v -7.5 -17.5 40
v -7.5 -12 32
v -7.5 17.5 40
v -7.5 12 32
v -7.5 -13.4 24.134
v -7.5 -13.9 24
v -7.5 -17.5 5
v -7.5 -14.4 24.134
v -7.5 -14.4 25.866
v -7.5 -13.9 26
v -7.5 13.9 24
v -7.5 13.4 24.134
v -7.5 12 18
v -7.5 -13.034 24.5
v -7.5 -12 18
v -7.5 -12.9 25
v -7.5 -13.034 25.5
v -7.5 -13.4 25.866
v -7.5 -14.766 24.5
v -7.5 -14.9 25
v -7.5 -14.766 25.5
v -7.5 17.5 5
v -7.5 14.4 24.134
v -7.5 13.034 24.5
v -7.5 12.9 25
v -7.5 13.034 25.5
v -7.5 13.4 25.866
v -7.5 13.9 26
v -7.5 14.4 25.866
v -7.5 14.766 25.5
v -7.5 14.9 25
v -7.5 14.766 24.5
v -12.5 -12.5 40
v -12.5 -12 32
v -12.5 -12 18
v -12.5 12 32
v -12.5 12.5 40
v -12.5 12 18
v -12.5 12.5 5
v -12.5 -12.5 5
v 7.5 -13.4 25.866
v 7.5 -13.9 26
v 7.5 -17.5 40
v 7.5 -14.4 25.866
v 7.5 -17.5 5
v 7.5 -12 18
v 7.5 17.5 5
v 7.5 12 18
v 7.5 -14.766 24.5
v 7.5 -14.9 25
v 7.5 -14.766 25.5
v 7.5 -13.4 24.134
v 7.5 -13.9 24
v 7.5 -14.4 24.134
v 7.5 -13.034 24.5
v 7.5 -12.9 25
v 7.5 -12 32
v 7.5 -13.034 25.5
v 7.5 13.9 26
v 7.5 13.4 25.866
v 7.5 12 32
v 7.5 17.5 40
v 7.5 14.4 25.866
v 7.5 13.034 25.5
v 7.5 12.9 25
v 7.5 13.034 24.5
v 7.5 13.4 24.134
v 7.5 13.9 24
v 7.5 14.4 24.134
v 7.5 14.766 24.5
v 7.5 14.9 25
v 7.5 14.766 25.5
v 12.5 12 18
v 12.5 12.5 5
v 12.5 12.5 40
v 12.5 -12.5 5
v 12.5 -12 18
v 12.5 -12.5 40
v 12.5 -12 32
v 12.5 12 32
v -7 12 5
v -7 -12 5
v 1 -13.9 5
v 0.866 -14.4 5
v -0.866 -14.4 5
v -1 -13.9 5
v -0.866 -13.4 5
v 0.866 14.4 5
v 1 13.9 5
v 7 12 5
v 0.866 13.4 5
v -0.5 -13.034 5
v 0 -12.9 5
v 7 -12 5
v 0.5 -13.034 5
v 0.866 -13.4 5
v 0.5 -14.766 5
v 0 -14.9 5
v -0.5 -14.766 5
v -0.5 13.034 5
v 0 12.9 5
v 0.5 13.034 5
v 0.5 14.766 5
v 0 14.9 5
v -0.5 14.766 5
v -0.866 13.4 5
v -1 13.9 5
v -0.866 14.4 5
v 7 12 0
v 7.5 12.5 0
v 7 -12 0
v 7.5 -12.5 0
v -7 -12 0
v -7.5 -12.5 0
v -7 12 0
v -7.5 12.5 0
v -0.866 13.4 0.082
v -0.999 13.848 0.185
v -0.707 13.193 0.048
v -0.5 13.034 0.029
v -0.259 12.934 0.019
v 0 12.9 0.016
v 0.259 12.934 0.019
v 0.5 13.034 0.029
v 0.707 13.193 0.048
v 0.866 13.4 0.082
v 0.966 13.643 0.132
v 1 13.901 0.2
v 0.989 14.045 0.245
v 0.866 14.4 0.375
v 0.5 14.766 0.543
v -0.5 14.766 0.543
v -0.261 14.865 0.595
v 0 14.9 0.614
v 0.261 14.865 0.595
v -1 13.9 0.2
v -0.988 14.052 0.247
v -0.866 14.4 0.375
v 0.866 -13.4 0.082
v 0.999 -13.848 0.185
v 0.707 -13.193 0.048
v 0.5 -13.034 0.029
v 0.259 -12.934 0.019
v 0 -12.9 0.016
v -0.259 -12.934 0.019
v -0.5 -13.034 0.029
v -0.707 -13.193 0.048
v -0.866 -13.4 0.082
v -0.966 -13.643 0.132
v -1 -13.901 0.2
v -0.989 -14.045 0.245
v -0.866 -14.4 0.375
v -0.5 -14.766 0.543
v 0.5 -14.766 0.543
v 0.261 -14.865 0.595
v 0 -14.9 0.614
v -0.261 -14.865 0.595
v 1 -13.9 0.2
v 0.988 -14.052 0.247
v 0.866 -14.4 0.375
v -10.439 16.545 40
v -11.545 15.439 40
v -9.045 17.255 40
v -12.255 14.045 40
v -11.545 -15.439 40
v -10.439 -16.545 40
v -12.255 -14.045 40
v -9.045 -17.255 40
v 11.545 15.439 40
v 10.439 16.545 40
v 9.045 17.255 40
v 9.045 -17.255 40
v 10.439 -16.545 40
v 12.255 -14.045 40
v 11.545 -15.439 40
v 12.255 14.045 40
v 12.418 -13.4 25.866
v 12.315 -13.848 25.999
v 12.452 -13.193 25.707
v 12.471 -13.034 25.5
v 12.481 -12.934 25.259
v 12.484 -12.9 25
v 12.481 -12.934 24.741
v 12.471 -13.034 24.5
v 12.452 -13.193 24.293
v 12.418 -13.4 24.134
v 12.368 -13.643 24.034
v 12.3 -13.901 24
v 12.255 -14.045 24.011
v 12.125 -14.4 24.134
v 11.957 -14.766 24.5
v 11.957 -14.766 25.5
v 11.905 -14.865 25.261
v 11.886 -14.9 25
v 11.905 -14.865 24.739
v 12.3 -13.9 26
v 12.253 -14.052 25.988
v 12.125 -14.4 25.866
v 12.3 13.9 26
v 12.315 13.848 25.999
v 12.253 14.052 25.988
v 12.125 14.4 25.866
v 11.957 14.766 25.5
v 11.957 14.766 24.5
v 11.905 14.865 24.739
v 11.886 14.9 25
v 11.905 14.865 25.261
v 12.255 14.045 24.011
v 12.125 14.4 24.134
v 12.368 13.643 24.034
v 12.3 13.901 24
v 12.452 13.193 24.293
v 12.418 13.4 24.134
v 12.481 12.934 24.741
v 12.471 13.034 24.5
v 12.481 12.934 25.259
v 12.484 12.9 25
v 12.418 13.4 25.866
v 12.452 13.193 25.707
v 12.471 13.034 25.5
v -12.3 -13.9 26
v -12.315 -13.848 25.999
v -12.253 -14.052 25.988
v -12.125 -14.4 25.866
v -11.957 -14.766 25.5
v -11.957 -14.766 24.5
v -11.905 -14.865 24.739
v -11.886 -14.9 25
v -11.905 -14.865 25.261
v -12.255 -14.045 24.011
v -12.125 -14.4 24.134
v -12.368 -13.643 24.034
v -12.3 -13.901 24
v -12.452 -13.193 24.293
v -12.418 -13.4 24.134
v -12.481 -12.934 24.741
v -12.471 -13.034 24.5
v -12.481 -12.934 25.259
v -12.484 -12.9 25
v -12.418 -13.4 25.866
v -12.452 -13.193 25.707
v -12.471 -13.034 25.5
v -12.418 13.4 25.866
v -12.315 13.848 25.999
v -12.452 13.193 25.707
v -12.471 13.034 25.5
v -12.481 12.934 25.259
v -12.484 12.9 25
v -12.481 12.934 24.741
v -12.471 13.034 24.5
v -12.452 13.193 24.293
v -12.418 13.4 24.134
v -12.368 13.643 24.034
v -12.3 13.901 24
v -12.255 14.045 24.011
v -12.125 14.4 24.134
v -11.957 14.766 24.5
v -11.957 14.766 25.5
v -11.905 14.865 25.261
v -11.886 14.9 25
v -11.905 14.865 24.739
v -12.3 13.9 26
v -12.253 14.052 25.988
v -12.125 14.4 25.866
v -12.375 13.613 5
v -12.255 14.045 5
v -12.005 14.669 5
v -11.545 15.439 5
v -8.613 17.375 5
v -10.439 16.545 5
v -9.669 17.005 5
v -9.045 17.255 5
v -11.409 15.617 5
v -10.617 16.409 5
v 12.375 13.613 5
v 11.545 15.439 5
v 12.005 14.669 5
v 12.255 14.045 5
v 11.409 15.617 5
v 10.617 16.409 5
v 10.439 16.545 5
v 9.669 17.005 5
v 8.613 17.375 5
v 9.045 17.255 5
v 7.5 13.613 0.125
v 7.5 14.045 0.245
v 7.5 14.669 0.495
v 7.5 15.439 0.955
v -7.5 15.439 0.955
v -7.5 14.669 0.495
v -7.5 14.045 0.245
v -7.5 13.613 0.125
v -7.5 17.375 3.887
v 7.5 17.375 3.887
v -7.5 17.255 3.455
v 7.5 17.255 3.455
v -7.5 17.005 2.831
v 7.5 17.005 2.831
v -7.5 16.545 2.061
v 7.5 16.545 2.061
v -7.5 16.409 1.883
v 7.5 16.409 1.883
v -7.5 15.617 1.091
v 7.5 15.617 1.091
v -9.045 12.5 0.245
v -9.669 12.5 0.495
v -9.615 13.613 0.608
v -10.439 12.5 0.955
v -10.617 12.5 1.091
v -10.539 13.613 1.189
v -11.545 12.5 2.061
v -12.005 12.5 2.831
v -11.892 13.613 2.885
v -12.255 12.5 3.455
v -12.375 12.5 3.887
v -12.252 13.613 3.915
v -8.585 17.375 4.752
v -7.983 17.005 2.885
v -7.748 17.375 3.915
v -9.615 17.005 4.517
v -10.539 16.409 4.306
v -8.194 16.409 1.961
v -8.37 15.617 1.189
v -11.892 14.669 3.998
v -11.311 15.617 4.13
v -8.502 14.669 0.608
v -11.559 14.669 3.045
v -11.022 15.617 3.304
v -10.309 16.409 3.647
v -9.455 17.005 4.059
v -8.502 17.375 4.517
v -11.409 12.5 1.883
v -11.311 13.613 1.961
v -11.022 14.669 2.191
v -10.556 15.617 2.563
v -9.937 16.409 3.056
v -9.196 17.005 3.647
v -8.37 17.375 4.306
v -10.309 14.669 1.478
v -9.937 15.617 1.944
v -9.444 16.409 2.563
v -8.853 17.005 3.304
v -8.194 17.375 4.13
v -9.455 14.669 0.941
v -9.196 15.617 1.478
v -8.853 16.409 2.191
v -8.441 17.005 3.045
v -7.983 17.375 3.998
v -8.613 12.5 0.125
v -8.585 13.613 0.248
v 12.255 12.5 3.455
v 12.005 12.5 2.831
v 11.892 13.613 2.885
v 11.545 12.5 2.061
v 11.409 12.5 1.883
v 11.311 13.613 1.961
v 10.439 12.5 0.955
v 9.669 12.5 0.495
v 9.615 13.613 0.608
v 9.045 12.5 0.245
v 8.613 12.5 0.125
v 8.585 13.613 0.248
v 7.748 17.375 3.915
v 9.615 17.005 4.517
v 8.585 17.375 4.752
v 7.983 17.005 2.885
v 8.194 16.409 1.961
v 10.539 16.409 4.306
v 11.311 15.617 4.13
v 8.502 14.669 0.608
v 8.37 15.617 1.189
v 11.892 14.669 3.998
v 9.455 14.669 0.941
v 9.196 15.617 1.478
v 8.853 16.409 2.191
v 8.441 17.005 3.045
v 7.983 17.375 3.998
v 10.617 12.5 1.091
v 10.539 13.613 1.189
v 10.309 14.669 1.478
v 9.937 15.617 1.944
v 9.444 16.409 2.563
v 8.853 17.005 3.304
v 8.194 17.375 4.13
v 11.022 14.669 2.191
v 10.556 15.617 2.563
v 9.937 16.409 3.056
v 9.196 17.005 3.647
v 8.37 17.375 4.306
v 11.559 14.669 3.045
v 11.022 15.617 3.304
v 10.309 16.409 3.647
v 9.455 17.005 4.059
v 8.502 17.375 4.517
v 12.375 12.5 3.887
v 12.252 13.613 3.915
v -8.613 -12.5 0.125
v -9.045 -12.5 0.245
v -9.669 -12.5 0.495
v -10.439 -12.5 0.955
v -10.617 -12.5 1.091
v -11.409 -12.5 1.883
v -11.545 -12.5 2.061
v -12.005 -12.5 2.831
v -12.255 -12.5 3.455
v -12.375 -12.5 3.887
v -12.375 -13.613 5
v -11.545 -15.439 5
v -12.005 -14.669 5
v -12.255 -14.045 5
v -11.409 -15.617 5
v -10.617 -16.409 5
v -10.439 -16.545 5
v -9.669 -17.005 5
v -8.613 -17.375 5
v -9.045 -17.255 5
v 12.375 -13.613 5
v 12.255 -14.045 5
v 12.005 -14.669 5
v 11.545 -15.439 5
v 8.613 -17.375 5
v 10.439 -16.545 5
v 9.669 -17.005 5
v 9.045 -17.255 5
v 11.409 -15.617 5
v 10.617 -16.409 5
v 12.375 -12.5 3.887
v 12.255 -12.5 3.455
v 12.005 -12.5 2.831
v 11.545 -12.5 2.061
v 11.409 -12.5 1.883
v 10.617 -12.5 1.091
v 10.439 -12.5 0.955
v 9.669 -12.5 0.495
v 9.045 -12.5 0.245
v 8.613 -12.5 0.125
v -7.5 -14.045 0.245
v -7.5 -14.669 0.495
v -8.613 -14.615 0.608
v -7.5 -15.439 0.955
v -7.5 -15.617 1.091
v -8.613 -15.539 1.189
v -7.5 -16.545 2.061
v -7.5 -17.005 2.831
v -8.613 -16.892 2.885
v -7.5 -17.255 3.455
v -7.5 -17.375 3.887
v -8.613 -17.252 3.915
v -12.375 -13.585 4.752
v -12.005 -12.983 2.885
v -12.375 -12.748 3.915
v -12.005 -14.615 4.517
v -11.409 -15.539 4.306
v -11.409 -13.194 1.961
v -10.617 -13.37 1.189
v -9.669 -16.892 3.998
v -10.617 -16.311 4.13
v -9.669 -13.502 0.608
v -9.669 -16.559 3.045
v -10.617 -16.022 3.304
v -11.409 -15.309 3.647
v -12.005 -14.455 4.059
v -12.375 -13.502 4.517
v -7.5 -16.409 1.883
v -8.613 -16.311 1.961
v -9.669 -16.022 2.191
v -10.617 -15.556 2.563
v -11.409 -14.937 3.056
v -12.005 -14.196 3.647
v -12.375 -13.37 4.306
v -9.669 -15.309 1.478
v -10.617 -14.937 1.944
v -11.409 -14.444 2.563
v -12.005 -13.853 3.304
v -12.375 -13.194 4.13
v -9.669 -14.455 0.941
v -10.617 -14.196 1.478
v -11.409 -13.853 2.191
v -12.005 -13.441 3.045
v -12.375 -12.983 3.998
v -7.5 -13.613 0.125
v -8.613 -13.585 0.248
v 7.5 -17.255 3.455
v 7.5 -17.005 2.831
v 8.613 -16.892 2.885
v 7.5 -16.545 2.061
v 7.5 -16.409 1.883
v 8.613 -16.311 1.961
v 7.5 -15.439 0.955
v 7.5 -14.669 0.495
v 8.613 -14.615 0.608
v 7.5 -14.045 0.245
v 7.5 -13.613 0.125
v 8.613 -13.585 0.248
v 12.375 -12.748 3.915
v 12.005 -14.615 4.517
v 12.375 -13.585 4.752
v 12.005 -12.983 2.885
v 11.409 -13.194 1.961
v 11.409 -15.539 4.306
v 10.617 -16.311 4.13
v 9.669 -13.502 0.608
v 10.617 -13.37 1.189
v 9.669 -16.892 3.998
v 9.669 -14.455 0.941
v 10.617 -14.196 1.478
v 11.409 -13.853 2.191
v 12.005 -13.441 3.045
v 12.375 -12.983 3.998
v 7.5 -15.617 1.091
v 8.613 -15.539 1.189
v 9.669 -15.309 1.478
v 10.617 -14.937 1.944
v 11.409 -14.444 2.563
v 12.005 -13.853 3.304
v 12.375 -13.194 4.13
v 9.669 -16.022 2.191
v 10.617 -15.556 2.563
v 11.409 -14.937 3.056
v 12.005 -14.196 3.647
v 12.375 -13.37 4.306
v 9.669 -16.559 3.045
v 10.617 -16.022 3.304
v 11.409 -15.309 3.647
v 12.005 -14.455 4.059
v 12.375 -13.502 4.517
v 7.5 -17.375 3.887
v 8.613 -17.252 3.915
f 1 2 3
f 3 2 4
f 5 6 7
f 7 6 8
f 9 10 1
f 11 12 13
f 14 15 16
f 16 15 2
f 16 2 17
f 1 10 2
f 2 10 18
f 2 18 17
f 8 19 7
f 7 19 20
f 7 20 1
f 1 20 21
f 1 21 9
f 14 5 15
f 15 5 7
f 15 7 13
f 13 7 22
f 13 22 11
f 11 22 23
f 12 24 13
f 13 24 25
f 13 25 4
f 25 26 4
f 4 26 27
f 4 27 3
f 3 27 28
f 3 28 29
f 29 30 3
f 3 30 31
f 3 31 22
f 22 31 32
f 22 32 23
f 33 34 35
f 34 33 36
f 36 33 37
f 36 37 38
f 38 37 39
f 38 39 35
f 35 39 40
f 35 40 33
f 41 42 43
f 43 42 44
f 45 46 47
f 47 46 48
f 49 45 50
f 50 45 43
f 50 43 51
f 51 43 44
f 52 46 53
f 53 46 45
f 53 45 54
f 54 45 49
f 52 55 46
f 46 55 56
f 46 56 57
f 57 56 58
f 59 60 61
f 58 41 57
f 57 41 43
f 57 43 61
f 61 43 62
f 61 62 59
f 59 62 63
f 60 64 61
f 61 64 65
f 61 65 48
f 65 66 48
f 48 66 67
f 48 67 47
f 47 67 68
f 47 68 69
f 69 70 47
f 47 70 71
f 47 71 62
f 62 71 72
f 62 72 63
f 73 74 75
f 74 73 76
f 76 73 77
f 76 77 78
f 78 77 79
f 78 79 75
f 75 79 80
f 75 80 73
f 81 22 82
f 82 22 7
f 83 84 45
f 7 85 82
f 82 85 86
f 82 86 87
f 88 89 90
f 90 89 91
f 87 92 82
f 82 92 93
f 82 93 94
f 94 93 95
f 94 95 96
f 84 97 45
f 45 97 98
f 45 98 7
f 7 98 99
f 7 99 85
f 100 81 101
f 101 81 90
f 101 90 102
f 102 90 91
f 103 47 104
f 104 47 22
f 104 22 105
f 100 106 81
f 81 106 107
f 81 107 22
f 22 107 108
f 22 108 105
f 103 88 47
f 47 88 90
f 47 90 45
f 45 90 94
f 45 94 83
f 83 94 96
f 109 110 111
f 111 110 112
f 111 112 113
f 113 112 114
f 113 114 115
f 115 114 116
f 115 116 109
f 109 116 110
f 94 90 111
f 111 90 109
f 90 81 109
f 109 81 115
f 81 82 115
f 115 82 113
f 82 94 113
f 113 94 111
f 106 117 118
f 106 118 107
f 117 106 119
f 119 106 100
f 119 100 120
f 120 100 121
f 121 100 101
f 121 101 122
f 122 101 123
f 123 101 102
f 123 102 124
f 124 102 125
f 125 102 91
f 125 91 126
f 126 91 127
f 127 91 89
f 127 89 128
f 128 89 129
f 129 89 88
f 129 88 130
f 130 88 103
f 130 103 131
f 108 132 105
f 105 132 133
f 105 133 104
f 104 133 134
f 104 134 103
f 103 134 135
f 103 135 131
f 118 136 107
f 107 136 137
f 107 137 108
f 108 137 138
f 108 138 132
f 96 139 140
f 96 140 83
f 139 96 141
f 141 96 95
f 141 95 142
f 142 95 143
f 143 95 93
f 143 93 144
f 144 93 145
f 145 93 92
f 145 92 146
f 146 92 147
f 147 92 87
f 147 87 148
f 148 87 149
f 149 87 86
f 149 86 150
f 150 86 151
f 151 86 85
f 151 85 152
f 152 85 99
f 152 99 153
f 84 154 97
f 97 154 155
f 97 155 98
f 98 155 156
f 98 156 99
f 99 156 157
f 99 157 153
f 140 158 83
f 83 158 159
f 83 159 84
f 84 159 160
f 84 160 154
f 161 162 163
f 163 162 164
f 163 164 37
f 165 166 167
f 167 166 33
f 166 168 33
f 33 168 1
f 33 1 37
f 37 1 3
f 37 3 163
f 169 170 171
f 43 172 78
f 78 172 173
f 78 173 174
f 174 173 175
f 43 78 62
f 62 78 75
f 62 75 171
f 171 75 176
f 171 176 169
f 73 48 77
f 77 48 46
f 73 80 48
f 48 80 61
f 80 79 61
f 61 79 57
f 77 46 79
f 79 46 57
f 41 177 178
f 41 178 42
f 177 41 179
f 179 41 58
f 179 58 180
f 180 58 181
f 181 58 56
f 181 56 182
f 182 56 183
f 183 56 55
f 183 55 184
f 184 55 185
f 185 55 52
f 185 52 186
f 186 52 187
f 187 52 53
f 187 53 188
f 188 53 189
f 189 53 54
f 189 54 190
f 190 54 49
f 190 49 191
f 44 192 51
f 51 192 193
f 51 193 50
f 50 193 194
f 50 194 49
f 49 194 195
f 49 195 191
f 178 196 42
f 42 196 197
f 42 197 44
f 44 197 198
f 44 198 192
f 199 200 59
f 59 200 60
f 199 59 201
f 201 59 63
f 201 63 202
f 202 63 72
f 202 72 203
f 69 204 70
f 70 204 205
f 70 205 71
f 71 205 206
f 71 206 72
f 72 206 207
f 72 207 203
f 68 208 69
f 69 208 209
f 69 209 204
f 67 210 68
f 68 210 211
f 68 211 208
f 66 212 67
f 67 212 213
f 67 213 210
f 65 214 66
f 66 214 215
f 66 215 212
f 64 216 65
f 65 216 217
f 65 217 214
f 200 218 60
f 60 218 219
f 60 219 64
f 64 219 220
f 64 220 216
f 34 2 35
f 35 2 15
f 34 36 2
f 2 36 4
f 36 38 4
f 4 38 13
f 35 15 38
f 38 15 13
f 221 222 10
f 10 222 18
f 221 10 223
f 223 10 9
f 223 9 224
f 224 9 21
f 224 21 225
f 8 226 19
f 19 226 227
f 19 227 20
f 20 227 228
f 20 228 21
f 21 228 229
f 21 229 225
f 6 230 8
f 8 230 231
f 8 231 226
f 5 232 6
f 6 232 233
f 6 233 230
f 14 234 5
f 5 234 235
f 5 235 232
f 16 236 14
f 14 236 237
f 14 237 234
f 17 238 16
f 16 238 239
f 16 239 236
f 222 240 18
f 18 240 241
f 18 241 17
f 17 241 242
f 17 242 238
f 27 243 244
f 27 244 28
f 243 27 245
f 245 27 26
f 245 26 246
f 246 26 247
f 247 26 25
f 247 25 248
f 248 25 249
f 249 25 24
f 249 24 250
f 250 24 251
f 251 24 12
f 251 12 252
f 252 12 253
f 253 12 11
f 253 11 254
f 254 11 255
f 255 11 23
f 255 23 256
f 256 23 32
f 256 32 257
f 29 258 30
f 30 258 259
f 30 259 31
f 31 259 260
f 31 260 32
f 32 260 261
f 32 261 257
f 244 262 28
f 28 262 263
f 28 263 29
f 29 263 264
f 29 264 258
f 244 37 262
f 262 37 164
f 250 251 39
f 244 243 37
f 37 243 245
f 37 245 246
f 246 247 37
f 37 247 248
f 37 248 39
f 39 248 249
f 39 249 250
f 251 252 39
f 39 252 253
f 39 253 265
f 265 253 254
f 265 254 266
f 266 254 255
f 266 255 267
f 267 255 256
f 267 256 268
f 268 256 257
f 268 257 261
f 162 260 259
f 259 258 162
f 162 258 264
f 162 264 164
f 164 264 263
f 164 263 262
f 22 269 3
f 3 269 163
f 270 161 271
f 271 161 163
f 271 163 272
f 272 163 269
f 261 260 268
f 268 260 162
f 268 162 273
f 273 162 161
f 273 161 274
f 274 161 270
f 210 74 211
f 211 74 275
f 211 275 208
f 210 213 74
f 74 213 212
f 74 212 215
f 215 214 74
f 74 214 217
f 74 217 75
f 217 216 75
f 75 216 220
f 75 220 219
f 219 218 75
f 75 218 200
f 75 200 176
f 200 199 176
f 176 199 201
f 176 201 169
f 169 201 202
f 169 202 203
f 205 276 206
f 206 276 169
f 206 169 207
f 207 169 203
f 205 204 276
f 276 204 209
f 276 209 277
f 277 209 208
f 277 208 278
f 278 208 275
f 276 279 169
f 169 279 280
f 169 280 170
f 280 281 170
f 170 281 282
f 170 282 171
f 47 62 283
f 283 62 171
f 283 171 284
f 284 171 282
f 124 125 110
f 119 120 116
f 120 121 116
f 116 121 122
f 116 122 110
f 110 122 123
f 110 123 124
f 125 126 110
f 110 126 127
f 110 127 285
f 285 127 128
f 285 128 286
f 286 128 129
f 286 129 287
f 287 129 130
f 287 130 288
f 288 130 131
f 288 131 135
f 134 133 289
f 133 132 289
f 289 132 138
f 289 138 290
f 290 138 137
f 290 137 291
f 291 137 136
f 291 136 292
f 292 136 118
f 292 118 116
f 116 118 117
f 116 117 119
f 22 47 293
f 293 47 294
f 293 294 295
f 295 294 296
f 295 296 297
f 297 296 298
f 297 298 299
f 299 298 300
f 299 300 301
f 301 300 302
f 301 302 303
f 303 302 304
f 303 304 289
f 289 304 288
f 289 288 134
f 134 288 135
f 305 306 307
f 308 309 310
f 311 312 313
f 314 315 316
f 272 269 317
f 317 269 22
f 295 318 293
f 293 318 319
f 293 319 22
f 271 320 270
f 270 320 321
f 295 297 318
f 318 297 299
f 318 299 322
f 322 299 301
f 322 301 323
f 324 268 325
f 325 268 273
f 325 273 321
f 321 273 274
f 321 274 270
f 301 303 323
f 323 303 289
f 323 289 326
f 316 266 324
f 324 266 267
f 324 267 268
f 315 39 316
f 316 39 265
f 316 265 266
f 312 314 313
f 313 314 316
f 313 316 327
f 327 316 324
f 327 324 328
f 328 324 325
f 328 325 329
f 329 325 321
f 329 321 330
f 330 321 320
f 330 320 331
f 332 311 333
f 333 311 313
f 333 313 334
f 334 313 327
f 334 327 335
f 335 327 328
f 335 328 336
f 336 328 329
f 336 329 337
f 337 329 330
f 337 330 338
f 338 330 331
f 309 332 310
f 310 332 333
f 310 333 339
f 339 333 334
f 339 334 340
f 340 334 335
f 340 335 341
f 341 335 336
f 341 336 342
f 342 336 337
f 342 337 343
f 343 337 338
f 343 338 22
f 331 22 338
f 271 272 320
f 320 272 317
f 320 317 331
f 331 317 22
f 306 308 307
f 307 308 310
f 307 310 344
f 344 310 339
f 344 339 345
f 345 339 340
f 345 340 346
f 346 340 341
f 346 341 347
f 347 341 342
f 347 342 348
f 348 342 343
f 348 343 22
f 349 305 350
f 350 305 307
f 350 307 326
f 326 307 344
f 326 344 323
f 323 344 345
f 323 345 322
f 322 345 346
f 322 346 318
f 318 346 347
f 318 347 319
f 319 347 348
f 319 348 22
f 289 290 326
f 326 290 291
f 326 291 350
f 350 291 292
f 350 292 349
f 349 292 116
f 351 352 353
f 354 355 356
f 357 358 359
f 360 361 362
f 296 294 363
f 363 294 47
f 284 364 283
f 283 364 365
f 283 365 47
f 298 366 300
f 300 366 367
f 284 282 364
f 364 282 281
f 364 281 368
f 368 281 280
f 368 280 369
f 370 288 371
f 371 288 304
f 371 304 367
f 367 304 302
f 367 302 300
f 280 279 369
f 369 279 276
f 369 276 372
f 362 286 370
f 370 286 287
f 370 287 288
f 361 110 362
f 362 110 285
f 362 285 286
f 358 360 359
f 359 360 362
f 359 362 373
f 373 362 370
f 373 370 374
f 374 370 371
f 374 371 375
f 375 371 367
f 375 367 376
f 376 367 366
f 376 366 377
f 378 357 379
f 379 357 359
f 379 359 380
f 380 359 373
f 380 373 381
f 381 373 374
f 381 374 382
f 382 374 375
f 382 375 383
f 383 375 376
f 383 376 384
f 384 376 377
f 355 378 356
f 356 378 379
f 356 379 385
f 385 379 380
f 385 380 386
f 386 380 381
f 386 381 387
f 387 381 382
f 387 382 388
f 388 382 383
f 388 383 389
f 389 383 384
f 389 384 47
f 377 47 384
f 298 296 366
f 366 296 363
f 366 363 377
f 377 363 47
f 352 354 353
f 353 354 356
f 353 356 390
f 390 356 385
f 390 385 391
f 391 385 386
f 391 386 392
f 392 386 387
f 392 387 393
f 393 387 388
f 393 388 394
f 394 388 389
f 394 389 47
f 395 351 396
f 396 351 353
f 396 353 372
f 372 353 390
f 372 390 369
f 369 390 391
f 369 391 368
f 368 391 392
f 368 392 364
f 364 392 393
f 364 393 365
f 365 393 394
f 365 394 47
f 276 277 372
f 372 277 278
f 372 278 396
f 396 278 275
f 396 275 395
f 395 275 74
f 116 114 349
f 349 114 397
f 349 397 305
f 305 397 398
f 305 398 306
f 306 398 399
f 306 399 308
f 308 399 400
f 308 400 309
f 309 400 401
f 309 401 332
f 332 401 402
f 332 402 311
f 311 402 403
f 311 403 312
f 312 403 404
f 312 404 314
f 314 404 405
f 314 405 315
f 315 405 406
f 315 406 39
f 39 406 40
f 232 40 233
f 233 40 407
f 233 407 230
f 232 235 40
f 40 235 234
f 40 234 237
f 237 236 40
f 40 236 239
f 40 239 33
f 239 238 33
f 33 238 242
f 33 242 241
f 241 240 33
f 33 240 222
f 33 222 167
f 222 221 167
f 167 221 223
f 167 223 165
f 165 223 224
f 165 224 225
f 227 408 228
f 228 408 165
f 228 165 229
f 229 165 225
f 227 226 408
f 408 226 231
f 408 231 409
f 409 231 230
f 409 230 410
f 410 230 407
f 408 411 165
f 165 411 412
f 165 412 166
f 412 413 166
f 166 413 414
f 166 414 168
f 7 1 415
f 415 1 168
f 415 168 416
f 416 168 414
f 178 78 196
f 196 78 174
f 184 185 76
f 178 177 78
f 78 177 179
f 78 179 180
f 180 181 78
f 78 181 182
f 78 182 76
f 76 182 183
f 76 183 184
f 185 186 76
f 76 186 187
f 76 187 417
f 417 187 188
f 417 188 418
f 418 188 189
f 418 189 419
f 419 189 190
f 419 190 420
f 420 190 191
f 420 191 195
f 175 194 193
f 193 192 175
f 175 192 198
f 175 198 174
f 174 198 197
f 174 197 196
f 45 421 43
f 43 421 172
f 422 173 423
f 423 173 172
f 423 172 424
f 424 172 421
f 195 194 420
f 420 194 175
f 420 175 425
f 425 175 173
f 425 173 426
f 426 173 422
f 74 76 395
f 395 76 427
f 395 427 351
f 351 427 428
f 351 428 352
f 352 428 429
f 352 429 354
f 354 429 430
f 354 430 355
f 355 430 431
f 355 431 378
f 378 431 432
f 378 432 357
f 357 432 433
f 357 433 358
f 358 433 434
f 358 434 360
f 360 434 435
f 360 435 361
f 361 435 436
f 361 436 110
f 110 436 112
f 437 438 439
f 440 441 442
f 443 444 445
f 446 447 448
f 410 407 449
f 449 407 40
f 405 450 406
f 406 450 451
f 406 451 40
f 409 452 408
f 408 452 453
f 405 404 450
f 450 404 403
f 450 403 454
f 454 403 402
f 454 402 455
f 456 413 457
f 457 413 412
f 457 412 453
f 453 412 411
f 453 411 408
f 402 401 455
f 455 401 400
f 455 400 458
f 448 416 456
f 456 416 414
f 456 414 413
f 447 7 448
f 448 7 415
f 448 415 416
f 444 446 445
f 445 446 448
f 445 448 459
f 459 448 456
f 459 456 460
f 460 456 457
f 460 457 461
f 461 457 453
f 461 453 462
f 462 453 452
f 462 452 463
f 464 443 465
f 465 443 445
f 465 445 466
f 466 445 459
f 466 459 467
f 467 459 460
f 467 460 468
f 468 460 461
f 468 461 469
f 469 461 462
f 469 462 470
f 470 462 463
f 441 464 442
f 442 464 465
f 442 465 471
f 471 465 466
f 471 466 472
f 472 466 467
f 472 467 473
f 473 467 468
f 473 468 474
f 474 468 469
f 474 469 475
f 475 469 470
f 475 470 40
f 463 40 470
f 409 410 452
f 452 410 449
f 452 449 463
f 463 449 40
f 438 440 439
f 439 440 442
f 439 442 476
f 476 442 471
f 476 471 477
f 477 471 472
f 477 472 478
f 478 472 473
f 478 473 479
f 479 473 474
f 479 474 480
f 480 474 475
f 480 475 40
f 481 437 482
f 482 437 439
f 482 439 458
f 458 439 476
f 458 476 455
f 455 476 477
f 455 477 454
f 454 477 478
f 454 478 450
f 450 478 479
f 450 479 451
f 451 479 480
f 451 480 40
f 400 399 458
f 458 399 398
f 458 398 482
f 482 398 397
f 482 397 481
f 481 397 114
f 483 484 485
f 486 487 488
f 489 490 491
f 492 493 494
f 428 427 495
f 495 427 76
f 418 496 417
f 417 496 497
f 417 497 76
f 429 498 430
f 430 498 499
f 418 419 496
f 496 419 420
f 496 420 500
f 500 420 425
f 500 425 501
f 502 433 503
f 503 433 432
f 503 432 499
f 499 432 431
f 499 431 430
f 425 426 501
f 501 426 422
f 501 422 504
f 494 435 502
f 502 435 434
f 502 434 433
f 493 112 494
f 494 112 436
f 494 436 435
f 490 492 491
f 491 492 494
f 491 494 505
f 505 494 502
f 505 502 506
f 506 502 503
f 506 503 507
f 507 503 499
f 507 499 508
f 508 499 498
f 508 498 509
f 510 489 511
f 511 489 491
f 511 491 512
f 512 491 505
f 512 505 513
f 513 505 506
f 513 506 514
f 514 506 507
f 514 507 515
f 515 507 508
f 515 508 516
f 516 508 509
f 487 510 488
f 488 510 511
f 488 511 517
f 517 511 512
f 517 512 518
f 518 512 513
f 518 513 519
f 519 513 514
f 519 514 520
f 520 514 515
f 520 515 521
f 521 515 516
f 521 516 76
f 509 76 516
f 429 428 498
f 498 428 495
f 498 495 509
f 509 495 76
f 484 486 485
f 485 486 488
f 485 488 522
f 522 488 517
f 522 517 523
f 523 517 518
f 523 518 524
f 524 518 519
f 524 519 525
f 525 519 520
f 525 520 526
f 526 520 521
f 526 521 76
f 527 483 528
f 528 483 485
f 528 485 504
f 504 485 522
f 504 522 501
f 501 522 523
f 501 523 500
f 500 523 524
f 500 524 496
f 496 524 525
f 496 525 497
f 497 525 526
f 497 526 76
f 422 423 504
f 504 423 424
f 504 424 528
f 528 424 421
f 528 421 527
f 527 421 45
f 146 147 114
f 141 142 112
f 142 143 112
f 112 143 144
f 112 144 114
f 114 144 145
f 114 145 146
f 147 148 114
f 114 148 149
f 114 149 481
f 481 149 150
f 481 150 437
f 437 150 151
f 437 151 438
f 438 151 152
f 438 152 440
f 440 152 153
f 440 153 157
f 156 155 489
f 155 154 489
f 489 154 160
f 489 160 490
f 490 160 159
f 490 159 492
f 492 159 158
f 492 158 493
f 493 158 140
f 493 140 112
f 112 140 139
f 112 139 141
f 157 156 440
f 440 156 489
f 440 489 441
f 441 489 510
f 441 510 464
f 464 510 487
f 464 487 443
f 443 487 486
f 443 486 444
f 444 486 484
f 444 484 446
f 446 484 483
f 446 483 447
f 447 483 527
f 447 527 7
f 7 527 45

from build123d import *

# Parameters (mm, degrees)
SKETCH1_W               = 20
SKETCH1_H               = 35
SKETCH1_R               = 1
SKETCH1_W_2             = 14
SKETCH1_H_2             = 24
BOSS_EXTRUDE1_DEPTH     = 5
SKETCH2_W               = 40
SKETCH2_H               = 35
BOSS_EXTRUDE2_DEPTH     = 2.5
CUT_EXTRUDE3_DEPTH      = 49.023431781
CUT_EXTRUDE3_DEPTH_BACK = 49.023431781
SKETCH3_W               = 14
SKETCH3_H               = 24
SKETCH3_R               = 1
FILLET1_R               = 5


with BuildPart() as part:
    # Sketch1 → Boss-Extrude1 (new body)
    with BuildSketch(Plane.XY):
        Rectangle(SKETCH1_W, SKETCH1_H)
        with Locations((0, 13.9)):
            Circle(SKETCH1_R, mode=Mode.SUBTRACT)
        with Locations(Location((0, -13.9, 0), (0, 0, 180))):
            Circle(SKETCH1_R, mode=Mode.SUBTRACT)
        Rectangle(SKETCH1_W_2, SKETCH1_H_2, mode=Mode.SUBTRACT)
    extrude(amount=BOSS_EXTRUDE1_DEPTH)

    # Sketch2 → Boss-Extrude2 (add, symmetric)
    with BuildSketch(Plane.ZY.offset(10)):
        with Locations((20, 0)):
            Rectangle(SKETCH2_W, SKETCH2_H)
    boss_extrude2 = extrude(amount=BOSS_EXTRUDE2_DEPTH, both=True)

    # Mirror3: Boss-Extrude2 across plane
    add(boss_extrude2.mirror(Plane(origin=(0, 0, 0), x_dir=(0, 0, 1), z_dir=(1, 0, 0))))

    # Sketch3 → Cut-Extrude3 (cut, two sides: drawn at the far end of the back side and taken through both)
    with BuildSketch(Plane(origin=(-7.5, 0, 0), x_dir=(0, 0, -1), z_dir=(1, 0, 0)).offset(-CUT_EXTRUDE3_DEPTH_BACK)):
        with Locations((-25, 0)):
            Rectangle(SKETCH3_W, SKETCH3_H)
        with Locations((-25, -13.9)):
            Circle(SKETCH3_R)
        with Locations((-25, 13.9)):
            Circle(SKETCH3_R)
    extrude(amount=CUT_EXTRUDE3_DEPTH + CUT_EXTRUDE3_DEPTH_BACK, mode=Mode.SUBTRACT)

    # Fillet1
    # the kernel refuses this fillet: 5 mm, written as the material it takes off along each edge
    with BuildSketch(Plane(origin=(-7.5, -12.5, 5), x_dir=(0, 0, -1), z_dir=(0, -1, 0))) as fillet1_piece_1_section:
        Polygon((0, 0), (FILLET1_R, 0), (FILLET1_R, -FILLET1_R), (0, -FILLET1_R), align=None)
    fillet1_piece_1 = extrude(amount=FILLET1_R, mode=Mode.PRIVATE)
    fillet1_piece_1 = fillet1_piece_1 - Plane(origin=(-7.5, -12.5, 5), x_dir=(0.7071067811865475, 0, 0.7071067811865475), z_dir=(0, -1, 0)) * Sphere(FILLET1_R, mode=Mode.PRIVATE)
    add(fillet1_piece_1, mode=Mode.SUBTRACT)
    with BuildSketch(Plane(origin=(7.5, -12.5, 5), x_dir=(0, 0, -1), z_dir=(0, -1, 0))) as fillet1_piece_2_section:
        Polygon((0, 0), (FILLET1_R, 0), (FILLET1_R, FILLET1_R), (0, FILLET1_R), align=None)
    fillet1_piece_2 = extrude(amount=FILLET1_R, mode=Mode.PRIVATE)
    fillet1_piece_2 = fillet1_piece_2 - Plane(origin=(7.5, -12.5, 5), x_dir=(-0.7071067811865475, 0, 0.7071067811865475), z_dir=(0, -1, 0)) * Sphere(FILLET1_R, mode=Mode.PRIVATE)
    add(fillet1_piece_2, mode=Mode.SUBTRACT)
    with BuildSketch(Plane(origin=(-7.5, 12.5, 5), x_dir=(-1, 0, 0), z_dir=(0, 0, -1))) as fillet1_piece_3_section:
        Polygon((0, 0), (FILLET1_R, 0), (FILLET1_R, FILLET1_R), (0, FILLET1_R), align=None)
    fillet1_piece_3 = extrude(amount=FILLET1_R, mode=Mode.PRIVATE)
    fillet1_piece_3 = fillet1_piece_3 - Plane(origin=(-7.5, 12.5, 5), x_dir=(0.7071067811865475, -0.7071067811865475, 0), z_dir=(0, 0, -1)) * Sphere(FILLET1_R, mode=Mode.PRIVATE)
    add(fillet1_piece_3, mode=Mode.SUBTRACT)
    with BuildSketch(Plane(origin=(7.5, 12.5, 5), x_dir=(0, 0, -1), z_dir=(1, 0, 0))) as fillet1_piece_4_section:
        Polygon((0, 0), (FILLET1_R, 0), (FILLET1_R, FILLET1_R), (0, FILLET1_R), align=None)
    fillet1_piece_4 = extrude(amount=FILLET1_R, mode=Mode.PRIVATE)
    fillet1_piece_4 = fillet1_piece_4 - Plane(origin=(7.5, 12.5, 5), x_dir=(0, -0.7071067811865475, 0.7071067811865475), z_dir=(1, 0, 0)) * Sphere(FILLET1_R, mode=Mode.PRIVATE)
    add(fillet1_piece_4, mode=Mode.SUBTRACT)
    with BuildSketch(Plane(origin=(-7.5, -17.5, 0), x_dir=(0, 0, 1), z_dir=(1, 0, 0)), Plane(origin=(-7.5, 17.5, 0), x_dir=(0, -1, 0), z_dir=(1, 0, 0))) as fillet1_piece_5:
        with BuildLine():
            CenterArc((FILLET1_R, -FILLET1_R), FILLET1_R, 90, 90)
            Line((0, -FILLET1_R), (0, 0))
            Line((0, 0), (FILLET1_R, 0))
        make_face()
    extrude(amount=15, mode=Mode.SUBTRACT)
    with BuildSketch(Plane(origin=(-12.5, 17.5, 5), x_dir=(0, -1, 0), z_dir=(0, 0, 1)), Plane(origin=(12.5, -17.5, 52.5), x_dir=(-1, 0, 0), z_dir=(0, 0, -1))) as fillet1_piece_6:
        with BuildLine():
            CenterArc((FILLET1_R, FILLET1_R), FILLET1_R, 180, 90)
            Line((0, FILLET1_R), (0, 0))
            Line((0, 0), (FILLET1_R, 0))
        make_face()
    extrude(amount=47.5, mode=Mode.SUBTRACT)
    with BuildSketch(Plane(origin=(-12.5, -17.5, 52.5), x_dir=(1, 0, 0), z_dir=(0, 0, -1)), Plane(origin=(12.5, 17.5, 5), x_dir=(0, -1, 0), z_dir=(0, 0, 1))) as fillet1_piece_7:
        with BuildLine():
            CenterArc((FILLET1_R, -FILLET1_R), FILLET1_R, 90, 90)
            Line((0, -FILLET1_R), (0, 0))
            Line((0, 0), (FILLET1_R, 0))
        make_face()
    extrude(amount=47.5, mode=Mode.SUBTRACT)
    with BuildSketch(Plane(origin=(12.5, -12.5, 0), x_dir=(-1, 0, 0), z_dir=(0, 1, 0))) as fillet1_piece_8:
        with BuildLine():
            CenterArc((FILLET1_R, FILLET1_R), FILLET1_R, 180, 90)
            Line((0, FILLET1_R), (0, 0))
            Line((0, 0), (FILLET1_R, 0))
        make_face()
    extrude(amount=25, mode=Mode.SUBTRACT)
    with BuildSketch(Plane(origin=(-12.5, -12.5, 0), x_dir=(1, 0, 0), z_dir=(0, 1, 0))) as fillet1_piece_9:
        with BuildLine():
            CenterArc((FILLET1_R, -FILLET1_R), FILLET1_R, 90, 90)
            Line((0, -FILLET1_R), (0, 0))
            Line((0, 0), (FILLET1_R, 0))
        make_face()
    extrude(amount=25, mode=Mode.SUBTRACT)


solid = part.part
